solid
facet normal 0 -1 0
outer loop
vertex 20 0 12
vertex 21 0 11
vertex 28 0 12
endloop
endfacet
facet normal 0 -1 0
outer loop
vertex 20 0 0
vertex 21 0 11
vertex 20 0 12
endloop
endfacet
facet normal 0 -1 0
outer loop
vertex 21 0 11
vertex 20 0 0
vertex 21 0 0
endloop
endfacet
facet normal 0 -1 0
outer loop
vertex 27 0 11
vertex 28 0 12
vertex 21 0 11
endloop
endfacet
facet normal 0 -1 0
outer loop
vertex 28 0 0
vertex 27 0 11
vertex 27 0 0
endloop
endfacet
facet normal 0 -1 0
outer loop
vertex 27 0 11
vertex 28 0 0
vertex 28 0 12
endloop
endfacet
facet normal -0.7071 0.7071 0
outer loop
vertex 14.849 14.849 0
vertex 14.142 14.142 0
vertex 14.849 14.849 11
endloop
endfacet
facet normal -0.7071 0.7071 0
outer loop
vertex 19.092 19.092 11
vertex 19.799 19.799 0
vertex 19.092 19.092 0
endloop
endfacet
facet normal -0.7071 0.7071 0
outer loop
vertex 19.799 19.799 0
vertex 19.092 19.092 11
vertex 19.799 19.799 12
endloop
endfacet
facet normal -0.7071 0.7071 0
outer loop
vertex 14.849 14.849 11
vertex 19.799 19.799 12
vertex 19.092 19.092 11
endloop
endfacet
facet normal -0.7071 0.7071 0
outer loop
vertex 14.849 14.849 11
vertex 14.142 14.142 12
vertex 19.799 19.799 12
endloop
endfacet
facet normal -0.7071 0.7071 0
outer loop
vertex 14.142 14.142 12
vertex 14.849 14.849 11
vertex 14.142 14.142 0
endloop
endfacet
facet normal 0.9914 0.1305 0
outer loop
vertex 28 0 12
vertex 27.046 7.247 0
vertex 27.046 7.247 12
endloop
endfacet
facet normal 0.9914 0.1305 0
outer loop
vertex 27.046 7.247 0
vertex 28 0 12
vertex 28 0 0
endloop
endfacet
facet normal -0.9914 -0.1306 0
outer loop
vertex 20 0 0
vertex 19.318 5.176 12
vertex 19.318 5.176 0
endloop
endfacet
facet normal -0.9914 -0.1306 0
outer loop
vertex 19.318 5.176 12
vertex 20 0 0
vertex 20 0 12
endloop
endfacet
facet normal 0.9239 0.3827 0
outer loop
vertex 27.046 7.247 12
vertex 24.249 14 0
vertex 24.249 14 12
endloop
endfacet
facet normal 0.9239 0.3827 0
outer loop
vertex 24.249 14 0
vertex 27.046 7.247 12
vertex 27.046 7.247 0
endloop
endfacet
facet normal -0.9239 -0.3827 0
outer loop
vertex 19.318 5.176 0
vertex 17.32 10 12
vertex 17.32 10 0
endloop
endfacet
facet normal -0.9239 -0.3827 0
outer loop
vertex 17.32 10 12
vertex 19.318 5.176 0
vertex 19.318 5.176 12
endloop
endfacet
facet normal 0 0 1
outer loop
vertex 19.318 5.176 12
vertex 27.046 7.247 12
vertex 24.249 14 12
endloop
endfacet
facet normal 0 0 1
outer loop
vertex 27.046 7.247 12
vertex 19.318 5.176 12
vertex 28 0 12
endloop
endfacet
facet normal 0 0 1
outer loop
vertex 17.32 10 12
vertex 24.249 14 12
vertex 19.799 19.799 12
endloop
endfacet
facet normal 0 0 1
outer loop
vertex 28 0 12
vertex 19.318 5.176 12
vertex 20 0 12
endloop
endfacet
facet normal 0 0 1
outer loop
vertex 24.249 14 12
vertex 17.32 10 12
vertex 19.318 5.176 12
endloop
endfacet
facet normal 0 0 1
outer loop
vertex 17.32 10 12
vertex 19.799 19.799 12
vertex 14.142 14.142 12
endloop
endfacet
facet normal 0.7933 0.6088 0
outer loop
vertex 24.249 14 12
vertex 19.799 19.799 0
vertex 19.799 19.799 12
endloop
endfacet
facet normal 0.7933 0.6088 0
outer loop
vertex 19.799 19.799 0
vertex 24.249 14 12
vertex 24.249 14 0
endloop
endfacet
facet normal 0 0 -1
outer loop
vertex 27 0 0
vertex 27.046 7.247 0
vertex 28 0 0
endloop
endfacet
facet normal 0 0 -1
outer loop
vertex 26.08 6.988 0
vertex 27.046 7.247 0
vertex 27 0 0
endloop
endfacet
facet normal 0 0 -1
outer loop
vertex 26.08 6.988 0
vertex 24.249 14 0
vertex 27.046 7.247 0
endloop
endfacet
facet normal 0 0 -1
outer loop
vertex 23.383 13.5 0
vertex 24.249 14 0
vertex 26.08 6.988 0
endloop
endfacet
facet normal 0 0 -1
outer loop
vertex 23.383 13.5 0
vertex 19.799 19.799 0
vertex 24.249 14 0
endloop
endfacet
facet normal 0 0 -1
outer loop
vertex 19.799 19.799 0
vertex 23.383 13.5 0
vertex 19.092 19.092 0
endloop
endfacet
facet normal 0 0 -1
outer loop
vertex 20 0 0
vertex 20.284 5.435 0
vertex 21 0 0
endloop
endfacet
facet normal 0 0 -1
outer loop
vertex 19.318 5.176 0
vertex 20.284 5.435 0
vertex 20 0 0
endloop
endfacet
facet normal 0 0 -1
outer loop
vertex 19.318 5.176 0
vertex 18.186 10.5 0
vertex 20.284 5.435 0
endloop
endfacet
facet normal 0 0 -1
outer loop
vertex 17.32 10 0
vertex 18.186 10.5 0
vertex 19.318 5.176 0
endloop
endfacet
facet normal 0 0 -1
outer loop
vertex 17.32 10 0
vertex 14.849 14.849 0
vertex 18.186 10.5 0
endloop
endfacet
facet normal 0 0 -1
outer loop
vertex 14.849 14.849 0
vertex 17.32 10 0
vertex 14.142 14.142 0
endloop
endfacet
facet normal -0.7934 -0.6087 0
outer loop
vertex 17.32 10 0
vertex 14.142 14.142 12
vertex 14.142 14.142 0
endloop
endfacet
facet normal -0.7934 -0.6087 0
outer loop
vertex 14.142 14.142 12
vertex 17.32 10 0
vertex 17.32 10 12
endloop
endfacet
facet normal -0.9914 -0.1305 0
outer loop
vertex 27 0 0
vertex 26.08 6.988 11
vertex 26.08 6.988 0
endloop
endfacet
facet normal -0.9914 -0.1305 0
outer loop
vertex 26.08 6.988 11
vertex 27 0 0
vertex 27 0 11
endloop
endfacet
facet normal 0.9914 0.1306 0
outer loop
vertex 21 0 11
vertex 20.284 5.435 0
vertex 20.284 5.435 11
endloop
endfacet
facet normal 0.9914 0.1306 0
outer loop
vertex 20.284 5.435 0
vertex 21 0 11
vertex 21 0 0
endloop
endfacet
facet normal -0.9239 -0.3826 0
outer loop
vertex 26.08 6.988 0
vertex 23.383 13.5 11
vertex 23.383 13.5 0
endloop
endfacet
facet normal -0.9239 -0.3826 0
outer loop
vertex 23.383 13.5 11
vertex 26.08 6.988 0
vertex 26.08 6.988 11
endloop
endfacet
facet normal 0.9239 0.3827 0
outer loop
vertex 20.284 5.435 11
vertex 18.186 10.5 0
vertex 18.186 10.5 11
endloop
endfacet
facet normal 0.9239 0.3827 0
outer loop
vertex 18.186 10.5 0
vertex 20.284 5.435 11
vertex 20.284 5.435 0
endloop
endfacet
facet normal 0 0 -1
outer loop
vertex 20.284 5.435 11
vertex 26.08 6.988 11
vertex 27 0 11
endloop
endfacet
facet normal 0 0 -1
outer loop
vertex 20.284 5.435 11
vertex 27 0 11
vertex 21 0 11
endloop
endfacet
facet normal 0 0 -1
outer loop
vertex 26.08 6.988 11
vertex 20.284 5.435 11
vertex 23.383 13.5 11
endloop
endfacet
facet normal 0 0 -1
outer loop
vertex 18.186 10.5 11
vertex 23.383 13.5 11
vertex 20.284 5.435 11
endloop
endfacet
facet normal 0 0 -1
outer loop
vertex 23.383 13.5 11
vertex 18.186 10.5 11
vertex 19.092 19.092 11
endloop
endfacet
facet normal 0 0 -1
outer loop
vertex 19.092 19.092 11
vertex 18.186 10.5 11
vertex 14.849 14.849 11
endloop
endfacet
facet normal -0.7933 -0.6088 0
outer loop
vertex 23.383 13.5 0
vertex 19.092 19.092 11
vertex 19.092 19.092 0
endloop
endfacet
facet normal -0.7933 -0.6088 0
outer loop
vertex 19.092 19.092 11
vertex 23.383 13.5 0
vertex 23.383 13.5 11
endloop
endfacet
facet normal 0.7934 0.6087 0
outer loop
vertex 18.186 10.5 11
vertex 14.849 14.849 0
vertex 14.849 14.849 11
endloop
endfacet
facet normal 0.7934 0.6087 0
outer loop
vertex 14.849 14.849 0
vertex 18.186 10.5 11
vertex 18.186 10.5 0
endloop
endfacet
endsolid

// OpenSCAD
  difference() {
  rotate_extrude (angle=45) translate([20,0,0]) square (size=[8,12], $fn=100);
  
 #rotate_extrude (angle=45) translate([21,0,0]) square (size=[6,11], $fn=100);
    }
